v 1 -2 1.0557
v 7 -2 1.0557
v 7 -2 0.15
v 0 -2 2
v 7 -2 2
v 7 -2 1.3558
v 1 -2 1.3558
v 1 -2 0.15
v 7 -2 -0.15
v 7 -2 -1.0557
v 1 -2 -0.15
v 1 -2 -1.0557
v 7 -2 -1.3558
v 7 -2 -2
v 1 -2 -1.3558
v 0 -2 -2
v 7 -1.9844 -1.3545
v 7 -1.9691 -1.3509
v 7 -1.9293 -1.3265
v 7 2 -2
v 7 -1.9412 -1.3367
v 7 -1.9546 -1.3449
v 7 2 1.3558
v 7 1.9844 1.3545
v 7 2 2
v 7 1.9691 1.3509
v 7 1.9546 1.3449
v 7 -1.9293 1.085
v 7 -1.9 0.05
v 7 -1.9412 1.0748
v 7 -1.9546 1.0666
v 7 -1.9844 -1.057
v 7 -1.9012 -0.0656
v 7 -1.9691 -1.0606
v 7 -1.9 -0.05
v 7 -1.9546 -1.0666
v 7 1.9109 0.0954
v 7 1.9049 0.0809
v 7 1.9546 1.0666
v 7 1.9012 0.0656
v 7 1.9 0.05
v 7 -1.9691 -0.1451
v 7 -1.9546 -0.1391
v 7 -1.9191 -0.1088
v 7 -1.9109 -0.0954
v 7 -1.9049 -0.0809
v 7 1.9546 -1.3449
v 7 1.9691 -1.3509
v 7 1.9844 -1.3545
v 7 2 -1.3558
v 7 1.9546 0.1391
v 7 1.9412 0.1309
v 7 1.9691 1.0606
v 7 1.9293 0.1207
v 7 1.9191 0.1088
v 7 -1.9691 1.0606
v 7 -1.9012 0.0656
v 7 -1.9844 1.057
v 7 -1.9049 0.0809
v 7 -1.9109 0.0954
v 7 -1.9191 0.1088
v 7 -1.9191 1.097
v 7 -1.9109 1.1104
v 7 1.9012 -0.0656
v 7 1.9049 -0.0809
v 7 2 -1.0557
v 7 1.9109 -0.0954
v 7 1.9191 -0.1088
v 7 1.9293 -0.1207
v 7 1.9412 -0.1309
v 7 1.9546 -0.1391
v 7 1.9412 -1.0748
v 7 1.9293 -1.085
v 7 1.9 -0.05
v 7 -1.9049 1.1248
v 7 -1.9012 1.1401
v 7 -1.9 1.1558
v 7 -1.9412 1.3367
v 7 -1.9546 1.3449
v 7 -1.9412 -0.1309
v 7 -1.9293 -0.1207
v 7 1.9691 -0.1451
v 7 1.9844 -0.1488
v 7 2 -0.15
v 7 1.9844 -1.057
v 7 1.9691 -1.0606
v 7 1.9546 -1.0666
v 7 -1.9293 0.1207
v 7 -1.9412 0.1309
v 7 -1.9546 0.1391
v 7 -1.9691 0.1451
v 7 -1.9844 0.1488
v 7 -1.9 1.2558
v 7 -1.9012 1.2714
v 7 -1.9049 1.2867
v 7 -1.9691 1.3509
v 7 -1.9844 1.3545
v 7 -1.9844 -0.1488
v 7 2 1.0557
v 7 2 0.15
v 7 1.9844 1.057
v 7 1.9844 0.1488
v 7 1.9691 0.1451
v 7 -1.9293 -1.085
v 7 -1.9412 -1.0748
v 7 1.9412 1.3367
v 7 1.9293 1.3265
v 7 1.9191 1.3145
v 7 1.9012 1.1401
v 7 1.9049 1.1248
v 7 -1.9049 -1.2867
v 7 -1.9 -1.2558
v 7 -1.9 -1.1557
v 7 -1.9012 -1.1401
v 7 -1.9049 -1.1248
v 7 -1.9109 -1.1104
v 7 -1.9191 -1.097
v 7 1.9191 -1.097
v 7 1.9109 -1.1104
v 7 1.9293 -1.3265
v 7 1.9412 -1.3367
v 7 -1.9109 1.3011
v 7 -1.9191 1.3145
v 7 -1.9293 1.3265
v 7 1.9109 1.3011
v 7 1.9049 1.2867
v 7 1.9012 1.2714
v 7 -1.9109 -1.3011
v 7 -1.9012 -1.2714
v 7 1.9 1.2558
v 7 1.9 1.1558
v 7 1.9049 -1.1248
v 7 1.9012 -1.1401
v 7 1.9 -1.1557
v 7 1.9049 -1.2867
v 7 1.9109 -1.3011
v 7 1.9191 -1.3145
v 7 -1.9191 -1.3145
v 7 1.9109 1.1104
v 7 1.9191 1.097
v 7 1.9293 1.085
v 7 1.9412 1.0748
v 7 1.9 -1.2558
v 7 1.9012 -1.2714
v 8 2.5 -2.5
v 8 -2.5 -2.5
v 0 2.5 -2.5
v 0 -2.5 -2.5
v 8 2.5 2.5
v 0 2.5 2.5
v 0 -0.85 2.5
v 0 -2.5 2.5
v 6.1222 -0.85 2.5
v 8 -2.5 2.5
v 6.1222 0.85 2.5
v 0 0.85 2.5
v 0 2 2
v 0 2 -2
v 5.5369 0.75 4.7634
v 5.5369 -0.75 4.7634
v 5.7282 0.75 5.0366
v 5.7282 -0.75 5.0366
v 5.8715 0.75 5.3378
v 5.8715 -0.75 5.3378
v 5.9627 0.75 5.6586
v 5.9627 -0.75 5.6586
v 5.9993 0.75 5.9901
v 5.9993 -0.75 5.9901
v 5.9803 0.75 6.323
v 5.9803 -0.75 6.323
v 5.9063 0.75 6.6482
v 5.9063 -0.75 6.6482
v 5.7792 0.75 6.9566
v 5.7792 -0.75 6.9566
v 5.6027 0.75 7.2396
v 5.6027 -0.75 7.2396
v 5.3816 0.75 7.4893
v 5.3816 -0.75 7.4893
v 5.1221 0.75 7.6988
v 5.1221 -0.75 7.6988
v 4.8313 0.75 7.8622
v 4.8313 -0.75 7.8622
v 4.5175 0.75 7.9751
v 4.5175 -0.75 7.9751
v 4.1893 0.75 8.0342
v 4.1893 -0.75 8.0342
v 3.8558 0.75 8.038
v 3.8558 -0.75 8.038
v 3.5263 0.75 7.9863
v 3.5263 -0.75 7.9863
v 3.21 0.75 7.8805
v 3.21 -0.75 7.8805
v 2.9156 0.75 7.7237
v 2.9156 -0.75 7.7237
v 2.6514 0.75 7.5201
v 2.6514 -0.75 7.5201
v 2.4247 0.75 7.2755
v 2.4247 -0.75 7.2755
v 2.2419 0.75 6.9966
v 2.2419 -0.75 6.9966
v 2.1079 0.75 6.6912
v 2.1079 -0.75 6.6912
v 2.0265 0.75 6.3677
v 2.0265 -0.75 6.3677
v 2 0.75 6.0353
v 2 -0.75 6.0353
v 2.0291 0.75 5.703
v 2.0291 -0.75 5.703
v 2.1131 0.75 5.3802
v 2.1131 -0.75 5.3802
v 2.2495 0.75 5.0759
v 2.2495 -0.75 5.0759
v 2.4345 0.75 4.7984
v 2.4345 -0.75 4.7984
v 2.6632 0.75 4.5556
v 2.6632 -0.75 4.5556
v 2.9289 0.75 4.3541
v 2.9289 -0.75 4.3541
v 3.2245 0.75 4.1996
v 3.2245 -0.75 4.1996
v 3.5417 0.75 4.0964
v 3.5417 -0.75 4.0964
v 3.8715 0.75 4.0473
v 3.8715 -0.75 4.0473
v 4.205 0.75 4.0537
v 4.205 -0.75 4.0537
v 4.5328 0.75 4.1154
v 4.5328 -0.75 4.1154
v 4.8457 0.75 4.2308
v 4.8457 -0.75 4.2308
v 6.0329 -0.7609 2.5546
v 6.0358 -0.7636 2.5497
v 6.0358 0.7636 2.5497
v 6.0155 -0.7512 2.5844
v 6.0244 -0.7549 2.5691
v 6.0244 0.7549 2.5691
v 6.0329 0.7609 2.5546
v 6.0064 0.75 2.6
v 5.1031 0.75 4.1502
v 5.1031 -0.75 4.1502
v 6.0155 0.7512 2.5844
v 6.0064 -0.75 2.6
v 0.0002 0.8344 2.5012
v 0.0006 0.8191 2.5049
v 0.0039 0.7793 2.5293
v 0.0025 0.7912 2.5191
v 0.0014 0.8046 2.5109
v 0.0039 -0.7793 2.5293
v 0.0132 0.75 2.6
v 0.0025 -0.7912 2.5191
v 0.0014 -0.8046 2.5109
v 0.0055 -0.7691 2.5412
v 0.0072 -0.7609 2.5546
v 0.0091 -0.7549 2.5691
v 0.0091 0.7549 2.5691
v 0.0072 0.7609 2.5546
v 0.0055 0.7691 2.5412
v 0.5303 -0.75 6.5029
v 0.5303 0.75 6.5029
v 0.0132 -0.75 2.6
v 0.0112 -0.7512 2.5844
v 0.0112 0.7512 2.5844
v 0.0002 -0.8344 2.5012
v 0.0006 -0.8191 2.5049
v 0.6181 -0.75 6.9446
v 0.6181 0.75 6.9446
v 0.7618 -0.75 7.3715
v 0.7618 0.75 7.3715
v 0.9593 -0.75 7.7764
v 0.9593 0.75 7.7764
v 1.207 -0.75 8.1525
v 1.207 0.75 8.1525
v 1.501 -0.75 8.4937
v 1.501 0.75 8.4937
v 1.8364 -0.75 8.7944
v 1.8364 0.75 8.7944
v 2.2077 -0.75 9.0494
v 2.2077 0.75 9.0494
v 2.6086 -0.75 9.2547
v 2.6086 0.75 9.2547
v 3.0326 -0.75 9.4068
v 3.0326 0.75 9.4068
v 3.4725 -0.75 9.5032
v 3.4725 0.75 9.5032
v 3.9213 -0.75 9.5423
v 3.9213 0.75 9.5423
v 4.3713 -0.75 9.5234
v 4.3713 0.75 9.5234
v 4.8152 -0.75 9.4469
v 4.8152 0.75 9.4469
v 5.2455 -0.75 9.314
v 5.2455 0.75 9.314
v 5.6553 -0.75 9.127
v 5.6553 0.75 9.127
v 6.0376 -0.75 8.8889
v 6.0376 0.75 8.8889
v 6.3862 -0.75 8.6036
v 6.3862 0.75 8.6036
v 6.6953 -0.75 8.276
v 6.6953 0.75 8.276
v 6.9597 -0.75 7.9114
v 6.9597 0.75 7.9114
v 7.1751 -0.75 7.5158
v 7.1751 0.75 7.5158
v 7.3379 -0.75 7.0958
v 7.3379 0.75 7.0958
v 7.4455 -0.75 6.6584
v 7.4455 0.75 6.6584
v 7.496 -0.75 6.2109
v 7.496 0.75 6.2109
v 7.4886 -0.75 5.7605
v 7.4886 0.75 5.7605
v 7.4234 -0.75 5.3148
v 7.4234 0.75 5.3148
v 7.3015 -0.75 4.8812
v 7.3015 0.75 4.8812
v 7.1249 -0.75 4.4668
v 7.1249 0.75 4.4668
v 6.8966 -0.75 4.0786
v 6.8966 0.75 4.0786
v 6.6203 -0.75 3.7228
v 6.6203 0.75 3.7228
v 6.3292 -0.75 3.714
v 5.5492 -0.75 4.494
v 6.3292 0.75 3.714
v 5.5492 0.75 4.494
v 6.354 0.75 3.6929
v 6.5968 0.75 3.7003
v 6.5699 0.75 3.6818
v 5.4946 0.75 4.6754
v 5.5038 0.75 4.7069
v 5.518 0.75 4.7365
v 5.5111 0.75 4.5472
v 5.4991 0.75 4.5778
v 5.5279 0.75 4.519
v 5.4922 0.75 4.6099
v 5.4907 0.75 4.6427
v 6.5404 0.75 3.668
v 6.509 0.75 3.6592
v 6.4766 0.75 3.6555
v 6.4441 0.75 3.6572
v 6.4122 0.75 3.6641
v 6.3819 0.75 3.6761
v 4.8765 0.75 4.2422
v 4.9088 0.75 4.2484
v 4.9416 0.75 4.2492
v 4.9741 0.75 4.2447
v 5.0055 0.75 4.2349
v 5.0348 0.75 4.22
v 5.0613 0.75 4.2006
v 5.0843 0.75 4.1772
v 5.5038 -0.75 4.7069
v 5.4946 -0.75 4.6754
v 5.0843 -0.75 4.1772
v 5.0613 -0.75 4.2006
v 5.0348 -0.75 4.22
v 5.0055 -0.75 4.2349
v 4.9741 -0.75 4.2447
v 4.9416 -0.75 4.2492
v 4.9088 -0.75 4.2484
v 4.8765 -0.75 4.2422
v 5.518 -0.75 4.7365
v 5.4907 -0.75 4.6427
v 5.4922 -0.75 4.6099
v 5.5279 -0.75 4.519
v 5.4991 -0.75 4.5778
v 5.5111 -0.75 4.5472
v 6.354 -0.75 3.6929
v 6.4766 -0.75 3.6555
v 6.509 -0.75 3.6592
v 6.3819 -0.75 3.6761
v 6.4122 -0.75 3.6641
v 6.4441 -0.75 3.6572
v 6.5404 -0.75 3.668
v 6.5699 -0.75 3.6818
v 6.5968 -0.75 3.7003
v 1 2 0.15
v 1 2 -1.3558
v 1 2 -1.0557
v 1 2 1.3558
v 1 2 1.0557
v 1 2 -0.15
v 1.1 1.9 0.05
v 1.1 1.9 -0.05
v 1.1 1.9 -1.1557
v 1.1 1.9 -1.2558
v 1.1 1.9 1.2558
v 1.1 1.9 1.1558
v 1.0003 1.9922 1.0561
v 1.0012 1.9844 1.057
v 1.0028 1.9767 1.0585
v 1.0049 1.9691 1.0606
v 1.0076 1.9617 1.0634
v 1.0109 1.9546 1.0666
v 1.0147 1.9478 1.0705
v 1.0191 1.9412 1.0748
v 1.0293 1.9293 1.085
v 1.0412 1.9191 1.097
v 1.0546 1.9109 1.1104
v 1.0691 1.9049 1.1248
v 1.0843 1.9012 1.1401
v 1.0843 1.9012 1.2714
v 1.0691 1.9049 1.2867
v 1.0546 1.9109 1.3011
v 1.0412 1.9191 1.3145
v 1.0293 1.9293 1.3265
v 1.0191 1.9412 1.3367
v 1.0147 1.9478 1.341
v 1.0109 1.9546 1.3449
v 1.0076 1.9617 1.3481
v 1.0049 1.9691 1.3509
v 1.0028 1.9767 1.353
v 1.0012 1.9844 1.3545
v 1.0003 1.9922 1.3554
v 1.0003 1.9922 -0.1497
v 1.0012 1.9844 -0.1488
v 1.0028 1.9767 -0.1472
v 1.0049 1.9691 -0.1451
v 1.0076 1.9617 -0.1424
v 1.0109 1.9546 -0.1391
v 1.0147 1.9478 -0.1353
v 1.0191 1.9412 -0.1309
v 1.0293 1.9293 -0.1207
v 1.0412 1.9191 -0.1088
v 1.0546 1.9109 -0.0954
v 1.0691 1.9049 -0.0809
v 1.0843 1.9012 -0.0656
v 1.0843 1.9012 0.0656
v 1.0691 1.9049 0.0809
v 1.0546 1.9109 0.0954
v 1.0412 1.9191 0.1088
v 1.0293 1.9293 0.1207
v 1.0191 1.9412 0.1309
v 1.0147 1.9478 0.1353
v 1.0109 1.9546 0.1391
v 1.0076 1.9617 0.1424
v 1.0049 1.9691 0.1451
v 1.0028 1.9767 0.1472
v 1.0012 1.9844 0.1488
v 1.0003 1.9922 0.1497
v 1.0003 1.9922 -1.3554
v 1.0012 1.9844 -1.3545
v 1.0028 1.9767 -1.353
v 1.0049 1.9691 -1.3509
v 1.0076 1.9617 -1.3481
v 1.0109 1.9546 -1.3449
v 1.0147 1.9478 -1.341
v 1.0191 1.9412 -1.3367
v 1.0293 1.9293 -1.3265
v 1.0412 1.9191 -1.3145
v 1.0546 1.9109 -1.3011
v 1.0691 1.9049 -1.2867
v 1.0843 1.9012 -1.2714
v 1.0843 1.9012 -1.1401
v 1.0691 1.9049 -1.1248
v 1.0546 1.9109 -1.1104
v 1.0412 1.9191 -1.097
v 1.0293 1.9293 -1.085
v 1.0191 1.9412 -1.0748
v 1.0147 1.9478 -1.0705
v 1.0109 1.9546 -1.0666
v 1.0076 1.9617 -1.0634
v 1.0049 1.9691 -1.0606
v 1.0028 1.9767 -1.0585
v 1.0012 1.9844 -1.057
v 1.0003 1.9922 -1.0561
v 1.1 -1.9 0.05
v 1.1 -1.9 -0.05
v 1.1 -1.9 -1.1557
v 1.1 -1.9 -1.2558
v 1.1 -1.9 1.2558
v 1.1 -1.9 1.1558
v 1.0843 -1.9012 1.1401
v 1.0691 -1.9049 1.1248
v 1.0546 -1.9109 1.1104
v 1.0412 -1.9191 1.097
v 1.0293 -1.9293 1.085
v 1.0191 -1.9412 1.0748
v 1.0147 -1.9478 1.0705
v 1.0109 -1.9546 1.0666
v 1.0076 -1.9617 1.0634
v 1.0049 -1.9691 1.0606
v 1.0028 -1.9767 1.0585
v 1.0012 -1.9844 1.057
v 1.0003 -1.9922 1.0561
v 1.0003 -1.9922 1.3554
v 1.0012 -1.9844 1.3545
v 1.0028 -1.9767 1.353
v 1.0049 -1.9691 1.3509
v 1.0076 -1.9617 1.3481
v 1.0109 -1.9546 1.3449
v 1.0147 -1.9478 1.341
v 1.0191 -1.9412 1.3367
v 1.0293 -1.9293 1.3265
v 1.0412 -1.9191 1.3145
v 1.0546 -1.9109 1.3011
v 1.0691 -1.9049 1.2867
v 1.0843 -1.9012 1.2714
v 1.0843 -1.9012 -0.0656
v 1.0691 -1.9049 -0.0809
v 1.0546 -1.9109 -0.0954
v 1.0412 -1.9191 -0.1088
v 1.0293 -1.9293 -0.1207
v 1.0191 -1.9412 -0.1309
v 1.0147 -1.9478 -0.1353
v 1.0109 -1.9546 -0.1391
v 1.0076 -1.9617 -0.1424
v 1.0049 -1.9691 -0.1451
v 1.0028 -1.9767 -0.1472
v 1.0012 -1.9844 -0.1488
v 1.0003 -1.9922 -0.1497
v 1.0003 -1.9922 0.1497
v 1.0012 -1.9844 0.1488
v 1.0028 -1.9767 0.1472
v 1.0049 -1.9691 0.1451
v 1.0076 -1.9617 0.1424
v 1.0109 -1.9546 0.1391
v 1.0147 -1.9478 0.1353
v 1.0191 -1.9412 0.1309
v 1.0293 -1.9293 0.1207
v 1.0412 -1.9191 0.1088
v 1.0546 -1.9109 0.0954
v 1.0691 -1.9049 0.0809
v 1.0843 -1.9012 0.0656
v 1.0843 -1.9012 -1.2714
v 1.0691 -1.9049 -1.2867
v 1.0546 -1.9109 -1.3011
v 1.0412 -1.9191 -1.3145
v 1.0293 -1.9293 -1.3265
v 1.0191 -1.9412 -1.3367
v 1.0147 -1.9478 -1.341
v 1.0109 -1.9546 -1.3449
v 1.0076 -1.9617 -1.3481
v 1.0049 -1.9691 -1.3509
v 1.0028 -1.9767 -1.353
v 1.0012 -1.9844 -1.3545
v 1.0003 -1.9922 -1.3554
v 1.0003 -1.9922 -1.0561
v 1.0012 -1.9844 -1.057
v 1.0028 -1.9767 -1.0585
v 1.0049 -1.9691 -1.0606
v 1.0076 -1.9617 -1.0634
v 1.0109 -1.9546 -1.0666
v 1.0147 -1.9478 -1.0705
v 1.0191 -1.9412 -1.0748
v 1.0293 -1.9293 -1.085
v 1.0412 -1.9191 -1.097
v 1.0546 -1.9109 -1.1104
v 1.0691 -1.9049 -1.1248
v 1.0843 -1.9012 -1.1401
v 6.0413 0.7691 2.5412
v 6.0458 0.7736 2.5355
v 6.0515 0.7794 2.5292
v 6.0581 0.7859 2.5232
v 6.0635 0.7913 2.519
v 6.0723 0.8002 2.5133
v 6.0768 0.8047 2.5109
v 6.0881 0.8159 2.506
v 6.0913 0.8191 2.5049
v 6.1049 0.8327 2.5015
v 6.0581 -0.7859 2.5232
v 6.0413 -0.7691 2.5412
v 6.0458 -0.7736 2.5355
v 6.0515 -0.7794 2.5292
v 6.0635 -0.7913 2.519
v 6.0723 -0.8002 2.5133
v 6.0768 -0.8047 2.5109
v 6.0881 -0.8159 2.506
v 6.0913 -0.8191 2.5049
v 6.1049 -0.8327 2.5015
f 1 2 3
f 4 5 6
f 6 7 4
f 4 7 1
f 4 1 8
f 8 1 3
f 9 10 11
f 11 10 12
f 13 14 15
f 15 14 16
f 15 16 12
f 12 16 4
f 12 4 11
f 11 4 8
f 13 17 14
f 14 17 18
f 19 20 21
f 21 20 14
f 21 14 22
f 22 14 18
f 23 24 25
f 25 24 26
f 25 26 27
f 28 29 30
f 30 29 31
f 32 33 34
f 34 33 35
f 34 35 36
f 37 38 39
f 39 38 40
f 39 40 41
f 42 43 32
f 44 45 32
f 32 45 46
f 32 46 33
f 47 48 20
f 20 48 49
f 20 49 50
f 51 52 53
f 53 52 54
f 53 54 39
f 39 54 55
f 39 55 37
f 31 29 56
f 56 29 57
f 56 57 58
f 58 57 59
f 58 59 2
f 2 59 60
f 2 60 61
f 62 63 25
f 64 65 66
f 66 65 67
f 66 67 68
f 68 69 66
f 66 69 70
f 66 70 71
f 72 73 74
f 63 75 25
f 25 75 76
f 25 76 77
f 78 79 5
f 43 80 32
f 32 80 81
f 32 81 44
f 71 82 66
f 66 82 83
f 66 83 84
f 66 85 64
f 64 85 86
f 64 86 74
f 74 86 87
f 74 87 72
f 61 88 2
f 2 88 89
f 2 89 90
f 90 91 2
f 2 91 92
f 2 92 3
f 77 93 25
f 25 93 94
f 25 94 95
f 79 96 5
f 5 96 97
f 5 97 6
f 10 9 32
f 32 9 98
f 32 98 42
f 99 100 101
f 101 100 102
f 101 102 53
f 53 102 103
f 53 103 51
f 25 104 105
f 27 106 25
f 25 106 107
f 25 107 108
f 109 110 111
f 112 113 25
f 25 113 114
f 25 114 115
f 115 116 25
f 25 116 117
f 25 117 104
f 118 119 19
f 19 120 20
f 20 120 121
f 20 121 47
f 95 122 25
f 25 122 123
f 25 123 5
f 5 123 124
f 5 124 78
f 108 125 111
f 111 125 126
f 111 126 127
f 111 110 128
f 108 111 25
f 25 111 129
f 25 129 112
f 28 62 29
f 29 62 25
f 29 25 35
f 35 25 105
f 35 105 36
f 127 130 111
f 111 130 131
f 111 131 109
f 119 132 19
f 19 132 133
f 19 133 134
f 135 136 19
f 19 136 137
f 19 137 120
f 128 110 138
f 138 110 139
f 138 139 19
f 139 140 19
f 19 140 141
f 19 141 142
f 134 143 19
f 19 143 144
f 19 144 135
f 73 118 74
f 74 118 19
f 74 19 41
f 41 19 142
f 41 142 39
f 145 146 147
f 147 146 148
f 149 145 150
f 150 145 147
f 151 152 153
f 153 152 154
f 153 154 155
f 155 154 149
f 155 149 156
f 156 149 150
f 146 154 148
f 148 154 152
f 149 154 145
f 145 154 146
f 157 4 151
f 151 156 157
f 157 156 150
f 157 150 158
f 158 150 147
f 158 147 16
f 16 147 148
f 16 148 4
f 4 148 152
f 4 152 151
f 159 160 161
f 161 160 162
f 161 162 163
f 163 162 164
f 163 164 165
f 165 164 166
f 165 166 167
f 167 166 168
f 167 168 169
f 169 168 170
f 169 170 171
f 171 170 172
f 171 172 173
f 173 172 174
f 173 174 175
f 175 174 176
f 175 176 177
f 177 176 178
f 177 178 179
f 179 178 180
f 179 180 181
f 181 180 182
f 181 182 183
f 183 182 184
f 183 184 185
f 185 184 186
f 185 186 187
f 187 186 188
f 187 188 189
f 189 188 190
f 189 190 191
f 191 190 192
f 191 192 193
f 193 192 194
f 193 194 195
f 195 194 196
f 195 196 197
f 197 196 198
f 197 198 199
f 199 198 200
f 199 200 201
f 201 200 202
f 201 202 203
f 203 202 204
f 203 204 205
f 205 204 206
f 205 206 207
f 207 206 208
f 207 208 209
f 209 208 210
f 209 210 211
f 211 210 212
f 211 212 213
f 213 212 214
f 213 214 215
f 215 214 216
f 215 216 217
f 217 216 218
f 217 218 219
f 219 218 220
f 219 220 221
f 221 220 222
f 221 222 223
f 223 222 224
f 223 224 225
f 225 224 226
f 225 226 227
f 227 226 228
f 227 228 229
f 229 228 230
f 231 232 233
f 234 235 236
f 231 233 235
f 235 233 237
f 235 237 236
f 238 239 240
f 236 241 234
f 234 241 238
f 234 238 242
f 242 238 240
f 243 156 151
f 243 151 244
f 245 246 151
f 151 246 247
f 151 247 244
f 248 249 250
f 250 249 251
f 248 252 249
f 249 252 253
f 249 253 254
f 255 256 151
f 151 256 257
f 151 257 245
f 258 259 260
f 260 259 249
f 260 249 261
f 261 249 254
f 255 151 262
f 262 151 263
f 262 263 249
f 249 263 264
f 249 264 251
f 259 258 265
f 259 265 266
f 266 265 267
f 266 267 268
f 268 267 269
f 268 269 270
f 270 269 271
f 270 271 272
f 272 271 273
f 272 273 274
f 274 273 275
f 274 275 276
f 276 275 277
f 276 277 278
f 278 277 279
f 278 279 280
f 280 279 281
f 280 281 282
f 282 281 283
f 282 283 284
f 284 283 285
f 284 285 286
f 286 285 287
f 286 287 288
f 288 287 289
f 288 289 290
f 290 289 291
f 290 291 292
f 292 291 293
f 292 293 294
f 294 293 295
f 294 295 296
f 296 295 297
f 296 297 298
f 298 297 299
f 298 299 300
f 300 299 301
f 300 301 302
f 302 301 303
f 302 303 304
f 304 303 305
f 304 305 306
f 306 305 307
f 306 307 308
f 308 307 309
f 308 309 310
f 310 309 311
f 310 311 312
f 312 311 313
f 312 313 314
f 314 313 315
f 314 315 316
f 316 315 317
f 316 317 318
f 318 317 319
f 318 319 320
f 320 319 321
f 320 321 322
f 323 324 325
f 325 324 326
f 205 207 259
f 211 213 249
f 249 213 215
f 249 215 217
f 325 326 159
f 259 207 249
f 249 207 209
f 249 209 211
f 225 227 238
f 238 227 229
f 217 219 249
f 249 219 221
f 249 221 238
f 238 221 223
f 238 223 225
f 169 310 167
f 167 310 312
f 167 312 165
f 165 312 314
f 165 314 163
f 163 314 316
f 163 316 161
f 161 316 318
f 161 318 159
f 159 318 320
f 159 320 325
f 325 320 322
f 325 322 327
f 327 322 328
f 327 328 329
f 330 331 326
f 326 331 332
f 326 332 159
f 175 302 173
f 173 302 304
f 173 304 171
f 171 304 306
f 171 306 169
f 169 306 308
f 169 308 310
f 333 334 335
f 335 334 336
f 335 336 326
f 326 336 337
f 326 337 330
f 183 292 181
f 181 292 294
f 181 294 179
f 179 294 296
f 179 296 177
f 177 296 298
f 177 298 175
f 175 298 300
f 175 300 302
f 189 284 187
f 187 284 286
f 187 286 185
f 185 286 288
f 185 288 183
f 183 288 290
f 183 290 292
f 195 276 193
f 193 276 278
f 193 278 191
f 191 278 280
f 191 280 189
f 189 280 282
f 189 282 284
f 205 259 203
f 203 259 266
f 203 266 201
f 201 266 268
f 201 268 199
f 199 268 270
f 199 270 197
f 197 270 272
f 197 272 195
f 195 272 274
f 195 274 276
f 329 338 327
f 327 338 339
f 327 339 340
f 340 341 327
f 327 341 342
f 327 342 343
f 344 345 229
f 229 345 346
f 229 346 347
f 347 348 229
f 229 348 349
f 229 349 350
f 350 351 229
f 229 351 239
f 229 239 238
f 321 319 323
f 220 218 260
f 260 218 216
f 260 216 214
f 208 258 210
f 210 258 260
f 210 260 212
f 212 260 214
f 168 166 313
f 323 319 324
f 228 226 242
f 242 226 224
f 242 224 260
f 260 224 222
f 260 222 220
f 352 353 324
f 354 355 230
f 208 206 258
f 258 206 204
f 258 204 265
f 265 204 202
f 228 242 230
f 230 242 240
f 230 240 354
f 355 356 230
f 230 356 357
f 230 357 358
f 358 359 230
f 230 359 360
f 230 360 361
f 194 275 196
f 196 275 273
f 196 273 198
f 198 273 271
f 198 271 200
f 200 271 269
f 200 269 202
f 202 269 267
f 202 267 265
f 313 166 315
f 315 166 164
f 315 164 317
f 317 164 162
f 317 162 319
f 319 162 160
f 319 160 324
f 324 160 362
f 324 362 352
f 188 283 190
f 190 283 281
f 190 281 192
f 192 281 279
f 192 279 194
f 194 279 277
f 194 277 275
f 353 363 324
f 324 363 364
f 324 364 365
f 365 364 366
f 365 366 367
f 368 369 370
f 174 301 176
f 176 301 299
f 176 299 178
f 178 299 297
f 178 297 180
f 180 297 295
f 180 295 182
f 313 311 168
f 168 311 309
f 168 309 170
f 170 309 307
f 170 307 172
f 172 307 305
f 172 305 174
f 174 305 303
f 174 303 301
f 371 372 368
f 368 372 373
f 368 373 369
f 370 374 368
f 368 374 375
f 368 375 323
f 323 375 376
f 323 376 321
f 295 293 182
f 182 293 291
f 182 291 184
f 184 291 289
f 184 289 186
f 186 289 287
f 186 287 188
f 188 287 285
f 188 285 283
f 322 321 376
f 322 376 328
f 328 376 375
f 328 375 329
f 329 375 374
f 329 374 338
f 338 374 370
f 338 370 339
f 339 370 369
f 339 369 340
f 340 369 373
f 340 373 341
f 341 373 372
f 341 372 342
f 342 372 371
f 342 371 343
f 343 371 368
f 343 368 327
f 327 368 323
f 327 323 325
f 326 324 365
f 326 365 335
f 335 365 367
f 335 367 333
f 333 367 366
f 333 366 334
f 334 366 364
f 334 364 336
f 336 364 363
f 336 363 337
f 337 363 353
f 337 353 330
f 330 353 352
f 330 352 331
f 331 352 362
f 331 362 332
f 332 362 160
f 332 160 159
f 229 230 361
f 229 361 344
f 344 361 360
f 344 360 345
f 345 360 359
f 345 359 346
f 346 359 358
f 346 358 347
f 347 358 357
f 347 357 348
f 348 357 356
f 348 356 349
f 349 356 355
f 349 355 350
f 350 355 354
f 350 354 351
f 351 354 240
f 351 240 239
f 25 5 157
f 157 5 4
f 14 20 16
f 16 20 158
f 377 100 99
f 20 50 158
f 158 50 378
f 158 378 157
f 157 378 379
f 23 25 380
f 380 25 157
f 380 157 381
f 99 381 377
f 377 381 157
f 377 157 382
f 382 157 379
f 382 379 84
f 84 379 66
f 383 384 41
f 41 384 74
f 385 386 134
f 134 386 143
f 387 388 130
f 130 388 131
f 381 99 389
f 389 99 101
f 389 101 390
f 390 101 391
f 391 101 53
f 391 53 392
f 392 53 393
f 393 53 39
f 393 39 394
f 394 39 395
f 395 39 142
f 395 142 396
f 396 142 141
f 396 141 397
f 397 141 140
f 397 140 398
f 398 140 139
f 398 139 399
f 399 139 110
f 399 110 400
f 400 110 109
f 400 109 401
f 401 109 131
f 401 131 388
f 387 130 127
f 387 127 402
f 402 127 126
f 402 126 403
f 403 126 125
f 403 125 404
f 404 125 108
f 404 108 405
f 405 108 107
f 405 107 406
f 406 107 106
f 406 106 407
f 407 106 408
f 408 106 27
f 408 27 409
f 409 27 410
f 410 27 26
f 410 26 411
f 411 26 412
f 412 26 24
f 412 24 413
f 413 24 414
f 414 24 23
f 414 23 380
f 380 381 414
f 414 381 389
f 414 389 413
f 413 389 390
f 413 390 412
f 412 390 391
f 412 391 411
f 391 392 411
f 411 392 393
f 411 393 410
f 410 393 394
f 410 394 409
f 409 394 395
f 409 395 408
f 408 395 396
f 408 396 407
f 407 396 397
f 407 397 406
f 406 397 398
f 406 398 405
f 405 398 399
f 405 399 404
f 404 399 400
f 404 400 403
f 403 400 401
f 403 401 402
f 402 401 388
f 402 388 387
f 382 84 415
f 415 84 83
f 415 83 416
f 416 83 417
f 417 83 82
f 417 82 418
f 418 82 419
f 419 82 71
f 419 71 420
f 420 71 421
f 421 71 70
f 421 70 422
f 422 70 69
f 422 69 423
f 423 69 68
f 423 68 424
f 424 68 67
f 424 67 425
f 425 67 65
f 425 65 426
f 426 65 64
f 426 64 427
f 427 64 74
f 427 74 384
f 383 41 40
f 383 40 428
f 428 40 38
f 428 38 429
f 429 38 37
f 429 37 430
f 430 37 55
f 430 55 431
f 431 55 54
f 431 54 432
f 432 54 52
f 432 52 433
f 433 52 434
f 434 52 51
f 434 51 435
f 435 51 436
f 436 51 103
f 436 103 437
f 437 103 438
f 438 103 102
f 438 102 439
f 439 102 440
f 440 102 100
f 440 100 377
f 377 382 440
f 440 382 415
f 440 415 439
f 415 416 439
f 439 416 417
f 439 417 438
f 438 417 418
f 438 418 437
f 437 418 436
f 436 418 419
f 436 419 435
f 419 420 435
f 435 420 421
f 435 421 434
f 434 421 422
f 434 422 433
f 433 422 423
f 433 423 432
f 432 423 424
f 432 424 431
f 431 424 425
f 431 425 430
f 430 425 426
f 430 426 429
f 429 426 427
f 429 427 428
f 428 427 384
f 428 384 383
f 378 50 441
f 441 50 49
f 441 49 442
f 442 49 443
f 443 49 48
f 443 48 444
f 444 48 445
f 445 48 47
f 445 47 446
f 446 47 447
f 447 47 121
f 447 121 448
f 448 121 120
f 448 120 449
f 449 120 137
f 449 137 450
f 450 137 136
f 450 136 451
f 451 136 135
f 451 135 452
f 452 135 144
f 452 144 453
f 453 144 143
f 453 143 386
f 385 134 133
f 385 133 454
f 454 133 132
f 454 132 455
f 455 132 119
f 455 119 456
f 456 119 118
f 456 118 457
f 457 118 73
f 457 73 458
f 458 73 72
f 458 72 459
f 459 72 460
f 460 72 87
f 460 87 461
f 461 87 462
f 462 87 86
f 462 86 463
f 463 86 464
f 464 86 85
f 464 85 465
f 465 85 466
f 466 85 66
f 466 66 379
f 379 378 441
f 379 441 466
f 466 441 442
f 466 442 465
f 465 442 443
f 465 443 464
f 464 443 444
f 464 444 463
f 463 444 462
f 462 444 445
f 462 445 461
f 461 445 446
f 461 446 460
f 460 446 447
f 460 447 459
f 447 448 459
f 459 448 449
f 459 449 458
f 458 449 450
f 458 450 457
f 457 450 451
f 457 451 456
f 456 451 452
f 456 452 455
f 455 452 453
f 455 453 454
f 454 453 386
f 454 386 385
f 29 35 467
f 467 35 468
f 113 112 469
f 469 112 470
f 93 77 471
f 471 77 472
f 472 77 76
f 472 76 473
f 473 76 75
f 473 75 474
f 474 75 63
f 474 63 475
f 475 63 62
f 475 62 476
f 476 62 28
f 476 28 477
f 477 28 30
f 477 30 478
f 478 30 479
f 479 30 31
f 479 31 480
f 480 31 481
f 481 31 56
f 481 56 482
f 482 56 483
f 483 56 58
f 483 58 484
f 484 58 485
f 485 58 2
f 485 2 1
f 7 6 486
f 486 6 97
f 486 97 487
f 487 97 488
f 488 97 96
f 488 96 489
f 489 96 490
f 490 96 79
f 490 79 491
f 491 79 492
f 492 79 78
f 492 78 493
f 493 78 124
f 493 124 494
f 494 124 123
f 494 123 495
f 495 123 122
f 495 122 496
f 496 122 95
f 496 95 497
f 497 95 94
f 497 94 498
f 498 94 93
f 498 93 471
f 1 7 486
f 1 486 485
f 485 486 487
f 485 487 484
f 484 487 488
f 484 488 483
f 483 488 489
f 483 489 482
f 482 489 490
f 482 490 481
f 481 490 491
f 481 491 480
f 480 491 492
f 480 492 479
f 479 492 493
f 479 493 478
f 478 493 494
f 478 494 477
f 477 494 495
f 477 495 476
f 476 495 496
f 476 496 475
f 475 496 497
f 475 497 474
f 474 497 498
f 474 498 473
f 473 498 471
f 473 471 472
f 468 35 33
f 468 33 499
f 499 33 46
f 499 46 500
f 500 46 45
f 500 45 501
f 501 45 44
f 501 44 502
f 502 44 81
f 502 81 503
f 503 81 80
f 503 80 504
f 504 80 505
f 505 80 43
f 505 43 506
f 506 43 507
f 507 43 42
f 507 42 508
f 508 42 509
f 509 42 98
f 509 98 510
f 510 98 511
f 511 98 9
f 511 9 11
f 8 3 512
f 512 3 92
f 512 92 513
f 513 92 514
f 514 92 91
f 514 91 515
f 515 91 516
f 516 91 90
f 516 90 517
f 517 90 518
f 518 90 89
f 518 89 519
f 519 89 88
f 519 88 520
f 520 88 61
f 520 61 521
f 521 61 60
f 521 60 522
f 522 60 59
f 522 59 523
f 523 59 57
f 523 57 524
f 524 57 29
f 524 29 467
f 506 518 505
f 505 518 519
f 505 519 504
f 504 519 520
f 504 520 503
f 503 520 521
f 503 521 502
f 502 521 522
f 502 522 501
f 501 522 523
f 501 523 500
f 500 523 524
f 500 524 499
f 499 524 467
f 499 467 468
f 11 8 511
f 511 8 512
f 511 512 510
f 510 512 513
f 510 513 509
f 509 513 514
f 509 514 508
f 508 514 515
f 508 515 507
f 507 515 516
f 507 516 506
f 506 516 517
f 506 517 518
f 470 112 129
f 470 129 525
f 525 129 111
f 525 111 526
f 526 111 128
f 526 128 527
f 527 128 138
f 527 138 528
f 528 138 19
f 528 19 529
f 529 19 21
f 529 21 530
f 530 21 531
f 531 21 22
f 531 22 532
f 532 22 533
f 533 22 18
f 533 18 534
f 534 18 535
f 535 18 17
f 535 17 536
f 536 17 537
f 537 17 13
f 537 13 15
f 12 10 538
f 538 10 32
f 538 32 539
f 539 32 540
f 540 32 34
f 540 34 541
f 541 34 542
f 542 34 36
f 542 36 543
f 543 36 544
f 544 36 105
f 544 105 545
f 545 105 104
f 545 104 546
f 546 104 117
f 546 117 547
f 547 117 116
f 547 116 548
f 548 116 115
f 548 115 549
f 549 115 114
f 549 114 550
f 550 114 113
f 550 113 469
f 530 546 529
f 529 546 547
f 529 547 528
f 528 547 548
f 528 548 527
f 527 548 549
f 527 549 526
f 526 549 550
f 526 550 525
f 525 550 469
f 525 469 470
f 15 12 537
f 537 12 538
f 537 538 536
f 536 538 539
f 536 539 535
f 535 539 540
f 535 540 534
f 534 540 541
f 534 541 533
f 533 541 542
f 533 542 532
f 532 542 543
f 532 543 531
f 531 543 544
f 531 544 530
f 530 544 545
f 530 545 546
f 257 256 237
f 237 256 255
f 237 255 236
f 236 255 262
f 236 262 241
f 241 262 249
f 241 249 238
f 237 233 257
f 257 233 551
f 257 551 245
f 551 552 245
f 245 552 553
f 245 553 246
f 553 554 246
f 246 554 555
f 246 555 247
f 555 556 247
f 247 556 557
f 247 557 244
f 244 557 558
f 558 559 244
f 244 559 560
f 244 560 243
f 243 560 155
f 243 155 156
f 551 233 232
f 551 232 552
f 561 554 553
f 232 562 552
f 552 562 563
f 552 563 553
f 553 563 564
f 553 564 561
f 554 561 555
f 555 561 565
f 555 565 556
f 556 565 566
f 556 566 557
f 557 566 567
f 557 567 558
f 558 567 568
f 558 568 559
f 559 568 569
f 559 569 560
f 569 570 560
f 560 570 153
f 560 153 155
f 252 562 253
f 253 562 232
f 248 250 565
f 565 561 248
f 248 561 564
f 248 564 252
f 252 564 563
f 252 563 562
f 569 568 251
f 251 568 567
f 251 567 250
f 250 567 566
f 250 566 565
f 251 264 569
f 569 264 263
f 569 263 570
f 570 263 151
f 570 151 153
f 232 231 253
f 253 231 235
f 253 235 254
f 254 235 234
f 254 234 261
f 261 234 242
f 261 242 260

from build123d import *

# Parameters (mm, degrees)
SKETCH_1_W             = 5
SKETCH_1_H             = 5
EXTRUDE_1_DEPTH        = 8
EXTRUDE_3_DEPTH        = 0.75
FILLET_2_R             = 0.2
FILLET_3_R             = 0.2
SKETCH_5_W             = 4
SKETCH_5_H             = 4
CUT_EXTRUDE_1_DEPTH    = 7
SKETCH_6_W             = 6
SKETCH_6_H             = 0.3
EXTRUDE_4_DEPTH        = 0.6
FILLET_4_R             = 0.1
FILLET_4_OF_MIRROR_1_R = 0.1
FILLET_5_R             = 0.1


# Some blends are built 0.0001 mm under size
with BuildPart() as part:
    # 草图1 → 凸台-拉伸1 (new body)
    with BuildSketch(Plane(origin=(0, 0, 0), x_dir=(0, 0, -1), z_dir=(1, 0, 0))):
        Rectangle(SKETCH_1_W, SKETCH_1_H)
    extrude(amount=EXTRUDE_1_DEPTH)

    # 草图4 → 凸台-拉伸3 (add, symmetric)
    with BuildSketch(Plane(origin=(0, 0, 0), x_dir=(1, 0, 0), z_dir=(0, 1, 0))):
        with BuildLine():
            Line((0, -2.5), (0.530317969, -6.502851582))
            ThreePointArc((0.530317969, -6.502851582), (5.54929459, -9.181591589), (6.474873734, -3.56829687))
            Line((6.474873734, -3.56829687), (5.414213562, -4.628957042))
            ThreePointArc((5.414213562, -4.628957042), (2.779286251, -7.627423723), (5.006963629, -4.315158958))
            Line((5.006963629, -4.315158958), (6.064710581, -2.5))
            Line((6.064710581, -2.5), (0, -2.5))
        make_face()
    extrude(amount=EXTRUDE_3_DEPTH, both=True)

    # 圆角2
    fillet_2_edges = [part.edges().sort_by_distance(p)[0] for p in [
        (5.414213562, 0, 4.628957042),
        (6.474873734, 0, 3.56829687),
    ]]
    fillet(fillet_2_edges, radius=FILLET_2_R)

    # 圆角3
    fillet_3_edges = [part.edges().sort_by_distance(p)[0] for p in [
        (5.006963629, 0, 4.315158958),
    ]]
    fillet(fillet_3_edges, radius=FILLET_3_R)

    # 草图5 → 切除-拉伸1 (cut)
    with BuildSketch(Plane.ZY):
        Rectangle(SKETCH_5_W, SKETCH_5_H)
    extrude(amount=-CUT_EXTRUDE_1_DEPTH, mode=Mode.SUBTRACT)

    # 草图6 → 凸台-拉伸4 (add)
    with BuildSketch(Plane(origin=(0, 2.5, 0), x_dir=(1, 0, 0), z_dir=(0, 1, 0))):
        with Locations((4, 0)):
            Rectangle(SKETCH_6_W, SKETCH_6_H)
        with Locations((4, 1.205749971)):
            Rectangle(SKETCH_6_W, SKETCH_6_H)
        with Locations((4, -1.205749971)):
            Rectangle(SKETCH_6_W, SKETCH_6_H)
    extrude_4 = extrude(amount=-EXTRUDE_4_DEPTH)

    # 圆角4
    fillet_4_edges = [part.edges().sort_by_distance(p)[0] for p in [
        (1, 1.9, 1.205749971),
        (4, 1.9, 1.355749971),
        (4, 1.9, 1.055749971),
        (1, 1.9, 0),
        (4, 1.9, 0.15),
        (4, 1.9, -0.15),
        (1, 1.9, -1.205749971),
        (4, 1.9, -1.055749971),
        (4, 1.9, -1.355749971),
    ]]
    fillet(fillet_4_edges, radius=FILLET_4_R - 0.0001)  # a hair under: the kernel refuses the full size

    # 镜向1: 凸台-拉伸4 across plane
    add(extrude_4.mirror(Plane.ZX))

    # 圆角4 of 镜向1
    fillet_4_of_mirror_1_edges = [part.edges().sort_by_distance(p)[0] for p in [
        (1, -1.9, 1.205749971),
        (4, -1.9, 1.355749971),
        (4, -1.9, 1.055749971),
        (1, -1.9, 0),
        (4, -1.9, 0.15),
        (4, -1.9, -0.15),
        (1, -1.9, -1.205749971),
        (4, -1.9, -1.055749971),
        (4, -1.9, -1.355749971),
    ]]
    fillet(fillet_4_of_mirror_1_edges, radius=FILLET_4_OF_MIRROR_1_R - 0.0001)  # a hair under: the kernel refuses the full size

    # 圆角5
    # the kernel refuses this fillet: 0.1 mm, written as the material it adds along each edge
    with BuildSketch(Plane(origin=(6.314710581, -0.75, 2.5), x_dir=(0, -1, 0), z_dir=(-1, 0, 0))) as fillet_5_piece_1_section:
        with BuildLine():
            CenterArc((FILLET_5_R, FILLET_5_R), FILLET_5_R, 180, 90)
            Line((0, FILLET_5_R), (0, 0))
            Line((0, 0), (FILLET_5_R, 0))
        make_face()
    fillet_5_piece_1 = extrude(amount=6.314710581, mode=Mode.PRIVATE)
    fillet_5_piece_1 = split(fillet_5_piece_1, bisect_by=Plane(origin=(0.055159567, -0.772671932, 2.916345616), z_dir=(0.9913377232664815, 0, -0.1313374220427252)), keep=Keep.TOP, mode=Mode.PRIVATE)
    fillet_5_piece_1 = split(fillet_5_piece_1, bisect_by=Plane(origin=(5.284914857, -0.772671932, 3.83817752), z_dir=(-0.8640058232036738, 0, -0.5034818144383589)), keep=Keep.TOP, mode=Mode.PRIVATE)
    add(fillet_5_piece_1)
    with BuildSketch(Plane(origin=(6.064710581, 0.75, 2.5), x_dir=(1, 0, 0), z_dir=(0, -1, 0))) as fillet_5_piece_2:
        with BuildLine():
            CenterArc((FILLET_5_R * 0.57466995271, FILLET_5_R), FILLET_5_R, 210.230623586, 59.769376414)
            Line((-FILLET_5_R * 0.289335870494, FILLET_5_R * 0.496518185562), (0, 0))
            Line((0, 0), (FILLET_5_R * 0.57466995271, 0))
        make_face()
    extrude(amount=1.5)
    with BuildSketch(Plane(origin=(6.314710581, 0.75, 2.5), x_dir=(0, 1, 0), z_dir=(-1, 0, 0))) as fillet_5_piece_3_section:
        with BuildLine():
            CenterArc((FILLET_5_R, -FILLET_5_R), FILLET_5_R, 90, 90)
            Line((0, -FILLET_5_R), (0, 0))
            Line((0, 0), (FILLET_5_R, 0))
        make_face()
    fillet_5_piece_3 = extrude(amount=6.314710581, mode=Mode.PRIVATE)
    fillet_5_piece_3 = split(fillet_5_piece_3, bisect_by=Plane(origin=(0.055159567, 0.772671932, 2.916345616), z_dir=(0.9913377232664815, 0, -0.1313374220427252)), keep=Keep.TOP, mode=Mode.PRIVATE)
    fillet_5_piece_3 = split(fillet_5_piece_3, bisect_by=Plane(origin=(5.284914857, 0.772671932, 3.83817752), z_dir=(-0.8640058232036738, 0, -0.5034818144383589)), keep=Keep.TOP, mode=Mode.PRIVATE)
    add(fillet_5_piece_3)
    with BuildSketch(Plane(origin=(6.064710581, 0.75, 2.5), x_dir=(1, 0, 0), z_dir=(0, -1, 0))) as fillet_5_piece_4a_section:
        with BuildLine():
            CenterArc((FILLET_5_R * 0.57466995271, FILLET_5_R), FILLET_5_R, 210.230623586, 59.769376414)
            Line((-FILLET_5_R * 0.289335870494, FILLET_5_R * 0.496518185562), (0, 0))
            Line((0, 0), (FILLET_5_R * 0.57466995271, 0))
        make_face()
    fillet_5_piece_4a = extrude(amount=1.643667488, mode=Mode.PRIVATE)
    fillet_5_piece_4a = split(fillet_5_piece_4a, bisect_by=Plane(origin=(6.070891015, -0.75, 2.510754755), z_dir=(0, -1, 0)), keep=Keep.TOP, mode=Mode.PRIVATE)
    with BuildSketch(Plane(origin=(6.314710581, -0.75, 2.5), x_dir=(0, -1, 0), z_dir=(-1, 0, 0))) as fillet_5_piece_4b_section:
        with BuildLine():
            CenterArc((FILLET_5_R, FILLET_5_R), FILLET_5_R, 180, 90)
            Line((0, FILLET_5_R), (0, 0))
            Line((0, 0), (FILLET_5_R, 0))
        make_face()
    fillet_5_piece_4b = extrude(amount=6.314710581, mode=Mode.PRIVATE)
    fillet_5_piece_4b = split(fillet_5_piece_4b, bisect_by=Plane(origin=(6.084353102, -0.772031599, 2.466292222), z_dir=(0.8640058232036738, 0, 0.5034818144383589)), keep=Keep.TOP, mode=Mode.PRIVATE)
    fillet_5_piece_4 = fillet_5_piece_4a & fillet_5_piece_4b
    add(fillet_5_piece_4)
    with BuildSketch(Plane(origin=(6.314710581, 0.75, 2.5), x_dir=(0, 1, 0), z_dir=(-1, 0, 0))) as fillet_5_piece_5a_section:
        with BuildLine():
            CenterArc((FILLET_5_R, -FILLET_5_R), FILLET_5_R, 90, 90)
            Line((0, -FILLET_5_R), (0, 0))
            Line((0, 0), (FILLET_5_R, 0))
        make_face()
    fillet_5_piece_5a = extrude(amount=6.314710581, mode=Mode.PRIVATE)
    fillet_5_piece_5a = split(fillet_5_piece_5a, bisect_by=Plane(origin=(6.084353102, 0.772031599, 2.466292222), z_dir=(0.8640058232036738, 0, 0.5034818144383589)), keep=Keep.TOP, mode=Mode.PRIVATE)
    with BuildSketch(Plane(origin=(6.064710581, 0.893667488, 2.5), x_dir=(1, 0, 0), z_dir=(0, -1, 0))) as fillet_5_piece_5b_section:
        with BuildLine():
            CenterArc((FILLET_5_R * 0.57466995271, FILLET_5_R), FILLET_5_R, 210.230623586, 59.769376414)
            Line((-FILLET_5_R * 0.289335870494, FILLET_5_R * 0.496518185562), (0, 0))
            Line((0, 0), (FILLET_5_R * 0.57466995271, 0))
        make_face()
    fillet_5_piece_5b = extrude(amount=1.643667488, mode=Mode.PRIVATE)
    fillet_5_piece_5b = split(fillet_5_piece_5b, bisect_by=Plane(origin=(6.070891015, 0.75, 2.510754755), z_dir=(0, 1, 0)), keep=Keep.TOP, mode=Mode.PRIVATE)
    fillet_5_piece_5 = fillet_5_piece_5a & fillet_5_piece_5b
    add(fillet_5_piece_5)


solid = part.part
